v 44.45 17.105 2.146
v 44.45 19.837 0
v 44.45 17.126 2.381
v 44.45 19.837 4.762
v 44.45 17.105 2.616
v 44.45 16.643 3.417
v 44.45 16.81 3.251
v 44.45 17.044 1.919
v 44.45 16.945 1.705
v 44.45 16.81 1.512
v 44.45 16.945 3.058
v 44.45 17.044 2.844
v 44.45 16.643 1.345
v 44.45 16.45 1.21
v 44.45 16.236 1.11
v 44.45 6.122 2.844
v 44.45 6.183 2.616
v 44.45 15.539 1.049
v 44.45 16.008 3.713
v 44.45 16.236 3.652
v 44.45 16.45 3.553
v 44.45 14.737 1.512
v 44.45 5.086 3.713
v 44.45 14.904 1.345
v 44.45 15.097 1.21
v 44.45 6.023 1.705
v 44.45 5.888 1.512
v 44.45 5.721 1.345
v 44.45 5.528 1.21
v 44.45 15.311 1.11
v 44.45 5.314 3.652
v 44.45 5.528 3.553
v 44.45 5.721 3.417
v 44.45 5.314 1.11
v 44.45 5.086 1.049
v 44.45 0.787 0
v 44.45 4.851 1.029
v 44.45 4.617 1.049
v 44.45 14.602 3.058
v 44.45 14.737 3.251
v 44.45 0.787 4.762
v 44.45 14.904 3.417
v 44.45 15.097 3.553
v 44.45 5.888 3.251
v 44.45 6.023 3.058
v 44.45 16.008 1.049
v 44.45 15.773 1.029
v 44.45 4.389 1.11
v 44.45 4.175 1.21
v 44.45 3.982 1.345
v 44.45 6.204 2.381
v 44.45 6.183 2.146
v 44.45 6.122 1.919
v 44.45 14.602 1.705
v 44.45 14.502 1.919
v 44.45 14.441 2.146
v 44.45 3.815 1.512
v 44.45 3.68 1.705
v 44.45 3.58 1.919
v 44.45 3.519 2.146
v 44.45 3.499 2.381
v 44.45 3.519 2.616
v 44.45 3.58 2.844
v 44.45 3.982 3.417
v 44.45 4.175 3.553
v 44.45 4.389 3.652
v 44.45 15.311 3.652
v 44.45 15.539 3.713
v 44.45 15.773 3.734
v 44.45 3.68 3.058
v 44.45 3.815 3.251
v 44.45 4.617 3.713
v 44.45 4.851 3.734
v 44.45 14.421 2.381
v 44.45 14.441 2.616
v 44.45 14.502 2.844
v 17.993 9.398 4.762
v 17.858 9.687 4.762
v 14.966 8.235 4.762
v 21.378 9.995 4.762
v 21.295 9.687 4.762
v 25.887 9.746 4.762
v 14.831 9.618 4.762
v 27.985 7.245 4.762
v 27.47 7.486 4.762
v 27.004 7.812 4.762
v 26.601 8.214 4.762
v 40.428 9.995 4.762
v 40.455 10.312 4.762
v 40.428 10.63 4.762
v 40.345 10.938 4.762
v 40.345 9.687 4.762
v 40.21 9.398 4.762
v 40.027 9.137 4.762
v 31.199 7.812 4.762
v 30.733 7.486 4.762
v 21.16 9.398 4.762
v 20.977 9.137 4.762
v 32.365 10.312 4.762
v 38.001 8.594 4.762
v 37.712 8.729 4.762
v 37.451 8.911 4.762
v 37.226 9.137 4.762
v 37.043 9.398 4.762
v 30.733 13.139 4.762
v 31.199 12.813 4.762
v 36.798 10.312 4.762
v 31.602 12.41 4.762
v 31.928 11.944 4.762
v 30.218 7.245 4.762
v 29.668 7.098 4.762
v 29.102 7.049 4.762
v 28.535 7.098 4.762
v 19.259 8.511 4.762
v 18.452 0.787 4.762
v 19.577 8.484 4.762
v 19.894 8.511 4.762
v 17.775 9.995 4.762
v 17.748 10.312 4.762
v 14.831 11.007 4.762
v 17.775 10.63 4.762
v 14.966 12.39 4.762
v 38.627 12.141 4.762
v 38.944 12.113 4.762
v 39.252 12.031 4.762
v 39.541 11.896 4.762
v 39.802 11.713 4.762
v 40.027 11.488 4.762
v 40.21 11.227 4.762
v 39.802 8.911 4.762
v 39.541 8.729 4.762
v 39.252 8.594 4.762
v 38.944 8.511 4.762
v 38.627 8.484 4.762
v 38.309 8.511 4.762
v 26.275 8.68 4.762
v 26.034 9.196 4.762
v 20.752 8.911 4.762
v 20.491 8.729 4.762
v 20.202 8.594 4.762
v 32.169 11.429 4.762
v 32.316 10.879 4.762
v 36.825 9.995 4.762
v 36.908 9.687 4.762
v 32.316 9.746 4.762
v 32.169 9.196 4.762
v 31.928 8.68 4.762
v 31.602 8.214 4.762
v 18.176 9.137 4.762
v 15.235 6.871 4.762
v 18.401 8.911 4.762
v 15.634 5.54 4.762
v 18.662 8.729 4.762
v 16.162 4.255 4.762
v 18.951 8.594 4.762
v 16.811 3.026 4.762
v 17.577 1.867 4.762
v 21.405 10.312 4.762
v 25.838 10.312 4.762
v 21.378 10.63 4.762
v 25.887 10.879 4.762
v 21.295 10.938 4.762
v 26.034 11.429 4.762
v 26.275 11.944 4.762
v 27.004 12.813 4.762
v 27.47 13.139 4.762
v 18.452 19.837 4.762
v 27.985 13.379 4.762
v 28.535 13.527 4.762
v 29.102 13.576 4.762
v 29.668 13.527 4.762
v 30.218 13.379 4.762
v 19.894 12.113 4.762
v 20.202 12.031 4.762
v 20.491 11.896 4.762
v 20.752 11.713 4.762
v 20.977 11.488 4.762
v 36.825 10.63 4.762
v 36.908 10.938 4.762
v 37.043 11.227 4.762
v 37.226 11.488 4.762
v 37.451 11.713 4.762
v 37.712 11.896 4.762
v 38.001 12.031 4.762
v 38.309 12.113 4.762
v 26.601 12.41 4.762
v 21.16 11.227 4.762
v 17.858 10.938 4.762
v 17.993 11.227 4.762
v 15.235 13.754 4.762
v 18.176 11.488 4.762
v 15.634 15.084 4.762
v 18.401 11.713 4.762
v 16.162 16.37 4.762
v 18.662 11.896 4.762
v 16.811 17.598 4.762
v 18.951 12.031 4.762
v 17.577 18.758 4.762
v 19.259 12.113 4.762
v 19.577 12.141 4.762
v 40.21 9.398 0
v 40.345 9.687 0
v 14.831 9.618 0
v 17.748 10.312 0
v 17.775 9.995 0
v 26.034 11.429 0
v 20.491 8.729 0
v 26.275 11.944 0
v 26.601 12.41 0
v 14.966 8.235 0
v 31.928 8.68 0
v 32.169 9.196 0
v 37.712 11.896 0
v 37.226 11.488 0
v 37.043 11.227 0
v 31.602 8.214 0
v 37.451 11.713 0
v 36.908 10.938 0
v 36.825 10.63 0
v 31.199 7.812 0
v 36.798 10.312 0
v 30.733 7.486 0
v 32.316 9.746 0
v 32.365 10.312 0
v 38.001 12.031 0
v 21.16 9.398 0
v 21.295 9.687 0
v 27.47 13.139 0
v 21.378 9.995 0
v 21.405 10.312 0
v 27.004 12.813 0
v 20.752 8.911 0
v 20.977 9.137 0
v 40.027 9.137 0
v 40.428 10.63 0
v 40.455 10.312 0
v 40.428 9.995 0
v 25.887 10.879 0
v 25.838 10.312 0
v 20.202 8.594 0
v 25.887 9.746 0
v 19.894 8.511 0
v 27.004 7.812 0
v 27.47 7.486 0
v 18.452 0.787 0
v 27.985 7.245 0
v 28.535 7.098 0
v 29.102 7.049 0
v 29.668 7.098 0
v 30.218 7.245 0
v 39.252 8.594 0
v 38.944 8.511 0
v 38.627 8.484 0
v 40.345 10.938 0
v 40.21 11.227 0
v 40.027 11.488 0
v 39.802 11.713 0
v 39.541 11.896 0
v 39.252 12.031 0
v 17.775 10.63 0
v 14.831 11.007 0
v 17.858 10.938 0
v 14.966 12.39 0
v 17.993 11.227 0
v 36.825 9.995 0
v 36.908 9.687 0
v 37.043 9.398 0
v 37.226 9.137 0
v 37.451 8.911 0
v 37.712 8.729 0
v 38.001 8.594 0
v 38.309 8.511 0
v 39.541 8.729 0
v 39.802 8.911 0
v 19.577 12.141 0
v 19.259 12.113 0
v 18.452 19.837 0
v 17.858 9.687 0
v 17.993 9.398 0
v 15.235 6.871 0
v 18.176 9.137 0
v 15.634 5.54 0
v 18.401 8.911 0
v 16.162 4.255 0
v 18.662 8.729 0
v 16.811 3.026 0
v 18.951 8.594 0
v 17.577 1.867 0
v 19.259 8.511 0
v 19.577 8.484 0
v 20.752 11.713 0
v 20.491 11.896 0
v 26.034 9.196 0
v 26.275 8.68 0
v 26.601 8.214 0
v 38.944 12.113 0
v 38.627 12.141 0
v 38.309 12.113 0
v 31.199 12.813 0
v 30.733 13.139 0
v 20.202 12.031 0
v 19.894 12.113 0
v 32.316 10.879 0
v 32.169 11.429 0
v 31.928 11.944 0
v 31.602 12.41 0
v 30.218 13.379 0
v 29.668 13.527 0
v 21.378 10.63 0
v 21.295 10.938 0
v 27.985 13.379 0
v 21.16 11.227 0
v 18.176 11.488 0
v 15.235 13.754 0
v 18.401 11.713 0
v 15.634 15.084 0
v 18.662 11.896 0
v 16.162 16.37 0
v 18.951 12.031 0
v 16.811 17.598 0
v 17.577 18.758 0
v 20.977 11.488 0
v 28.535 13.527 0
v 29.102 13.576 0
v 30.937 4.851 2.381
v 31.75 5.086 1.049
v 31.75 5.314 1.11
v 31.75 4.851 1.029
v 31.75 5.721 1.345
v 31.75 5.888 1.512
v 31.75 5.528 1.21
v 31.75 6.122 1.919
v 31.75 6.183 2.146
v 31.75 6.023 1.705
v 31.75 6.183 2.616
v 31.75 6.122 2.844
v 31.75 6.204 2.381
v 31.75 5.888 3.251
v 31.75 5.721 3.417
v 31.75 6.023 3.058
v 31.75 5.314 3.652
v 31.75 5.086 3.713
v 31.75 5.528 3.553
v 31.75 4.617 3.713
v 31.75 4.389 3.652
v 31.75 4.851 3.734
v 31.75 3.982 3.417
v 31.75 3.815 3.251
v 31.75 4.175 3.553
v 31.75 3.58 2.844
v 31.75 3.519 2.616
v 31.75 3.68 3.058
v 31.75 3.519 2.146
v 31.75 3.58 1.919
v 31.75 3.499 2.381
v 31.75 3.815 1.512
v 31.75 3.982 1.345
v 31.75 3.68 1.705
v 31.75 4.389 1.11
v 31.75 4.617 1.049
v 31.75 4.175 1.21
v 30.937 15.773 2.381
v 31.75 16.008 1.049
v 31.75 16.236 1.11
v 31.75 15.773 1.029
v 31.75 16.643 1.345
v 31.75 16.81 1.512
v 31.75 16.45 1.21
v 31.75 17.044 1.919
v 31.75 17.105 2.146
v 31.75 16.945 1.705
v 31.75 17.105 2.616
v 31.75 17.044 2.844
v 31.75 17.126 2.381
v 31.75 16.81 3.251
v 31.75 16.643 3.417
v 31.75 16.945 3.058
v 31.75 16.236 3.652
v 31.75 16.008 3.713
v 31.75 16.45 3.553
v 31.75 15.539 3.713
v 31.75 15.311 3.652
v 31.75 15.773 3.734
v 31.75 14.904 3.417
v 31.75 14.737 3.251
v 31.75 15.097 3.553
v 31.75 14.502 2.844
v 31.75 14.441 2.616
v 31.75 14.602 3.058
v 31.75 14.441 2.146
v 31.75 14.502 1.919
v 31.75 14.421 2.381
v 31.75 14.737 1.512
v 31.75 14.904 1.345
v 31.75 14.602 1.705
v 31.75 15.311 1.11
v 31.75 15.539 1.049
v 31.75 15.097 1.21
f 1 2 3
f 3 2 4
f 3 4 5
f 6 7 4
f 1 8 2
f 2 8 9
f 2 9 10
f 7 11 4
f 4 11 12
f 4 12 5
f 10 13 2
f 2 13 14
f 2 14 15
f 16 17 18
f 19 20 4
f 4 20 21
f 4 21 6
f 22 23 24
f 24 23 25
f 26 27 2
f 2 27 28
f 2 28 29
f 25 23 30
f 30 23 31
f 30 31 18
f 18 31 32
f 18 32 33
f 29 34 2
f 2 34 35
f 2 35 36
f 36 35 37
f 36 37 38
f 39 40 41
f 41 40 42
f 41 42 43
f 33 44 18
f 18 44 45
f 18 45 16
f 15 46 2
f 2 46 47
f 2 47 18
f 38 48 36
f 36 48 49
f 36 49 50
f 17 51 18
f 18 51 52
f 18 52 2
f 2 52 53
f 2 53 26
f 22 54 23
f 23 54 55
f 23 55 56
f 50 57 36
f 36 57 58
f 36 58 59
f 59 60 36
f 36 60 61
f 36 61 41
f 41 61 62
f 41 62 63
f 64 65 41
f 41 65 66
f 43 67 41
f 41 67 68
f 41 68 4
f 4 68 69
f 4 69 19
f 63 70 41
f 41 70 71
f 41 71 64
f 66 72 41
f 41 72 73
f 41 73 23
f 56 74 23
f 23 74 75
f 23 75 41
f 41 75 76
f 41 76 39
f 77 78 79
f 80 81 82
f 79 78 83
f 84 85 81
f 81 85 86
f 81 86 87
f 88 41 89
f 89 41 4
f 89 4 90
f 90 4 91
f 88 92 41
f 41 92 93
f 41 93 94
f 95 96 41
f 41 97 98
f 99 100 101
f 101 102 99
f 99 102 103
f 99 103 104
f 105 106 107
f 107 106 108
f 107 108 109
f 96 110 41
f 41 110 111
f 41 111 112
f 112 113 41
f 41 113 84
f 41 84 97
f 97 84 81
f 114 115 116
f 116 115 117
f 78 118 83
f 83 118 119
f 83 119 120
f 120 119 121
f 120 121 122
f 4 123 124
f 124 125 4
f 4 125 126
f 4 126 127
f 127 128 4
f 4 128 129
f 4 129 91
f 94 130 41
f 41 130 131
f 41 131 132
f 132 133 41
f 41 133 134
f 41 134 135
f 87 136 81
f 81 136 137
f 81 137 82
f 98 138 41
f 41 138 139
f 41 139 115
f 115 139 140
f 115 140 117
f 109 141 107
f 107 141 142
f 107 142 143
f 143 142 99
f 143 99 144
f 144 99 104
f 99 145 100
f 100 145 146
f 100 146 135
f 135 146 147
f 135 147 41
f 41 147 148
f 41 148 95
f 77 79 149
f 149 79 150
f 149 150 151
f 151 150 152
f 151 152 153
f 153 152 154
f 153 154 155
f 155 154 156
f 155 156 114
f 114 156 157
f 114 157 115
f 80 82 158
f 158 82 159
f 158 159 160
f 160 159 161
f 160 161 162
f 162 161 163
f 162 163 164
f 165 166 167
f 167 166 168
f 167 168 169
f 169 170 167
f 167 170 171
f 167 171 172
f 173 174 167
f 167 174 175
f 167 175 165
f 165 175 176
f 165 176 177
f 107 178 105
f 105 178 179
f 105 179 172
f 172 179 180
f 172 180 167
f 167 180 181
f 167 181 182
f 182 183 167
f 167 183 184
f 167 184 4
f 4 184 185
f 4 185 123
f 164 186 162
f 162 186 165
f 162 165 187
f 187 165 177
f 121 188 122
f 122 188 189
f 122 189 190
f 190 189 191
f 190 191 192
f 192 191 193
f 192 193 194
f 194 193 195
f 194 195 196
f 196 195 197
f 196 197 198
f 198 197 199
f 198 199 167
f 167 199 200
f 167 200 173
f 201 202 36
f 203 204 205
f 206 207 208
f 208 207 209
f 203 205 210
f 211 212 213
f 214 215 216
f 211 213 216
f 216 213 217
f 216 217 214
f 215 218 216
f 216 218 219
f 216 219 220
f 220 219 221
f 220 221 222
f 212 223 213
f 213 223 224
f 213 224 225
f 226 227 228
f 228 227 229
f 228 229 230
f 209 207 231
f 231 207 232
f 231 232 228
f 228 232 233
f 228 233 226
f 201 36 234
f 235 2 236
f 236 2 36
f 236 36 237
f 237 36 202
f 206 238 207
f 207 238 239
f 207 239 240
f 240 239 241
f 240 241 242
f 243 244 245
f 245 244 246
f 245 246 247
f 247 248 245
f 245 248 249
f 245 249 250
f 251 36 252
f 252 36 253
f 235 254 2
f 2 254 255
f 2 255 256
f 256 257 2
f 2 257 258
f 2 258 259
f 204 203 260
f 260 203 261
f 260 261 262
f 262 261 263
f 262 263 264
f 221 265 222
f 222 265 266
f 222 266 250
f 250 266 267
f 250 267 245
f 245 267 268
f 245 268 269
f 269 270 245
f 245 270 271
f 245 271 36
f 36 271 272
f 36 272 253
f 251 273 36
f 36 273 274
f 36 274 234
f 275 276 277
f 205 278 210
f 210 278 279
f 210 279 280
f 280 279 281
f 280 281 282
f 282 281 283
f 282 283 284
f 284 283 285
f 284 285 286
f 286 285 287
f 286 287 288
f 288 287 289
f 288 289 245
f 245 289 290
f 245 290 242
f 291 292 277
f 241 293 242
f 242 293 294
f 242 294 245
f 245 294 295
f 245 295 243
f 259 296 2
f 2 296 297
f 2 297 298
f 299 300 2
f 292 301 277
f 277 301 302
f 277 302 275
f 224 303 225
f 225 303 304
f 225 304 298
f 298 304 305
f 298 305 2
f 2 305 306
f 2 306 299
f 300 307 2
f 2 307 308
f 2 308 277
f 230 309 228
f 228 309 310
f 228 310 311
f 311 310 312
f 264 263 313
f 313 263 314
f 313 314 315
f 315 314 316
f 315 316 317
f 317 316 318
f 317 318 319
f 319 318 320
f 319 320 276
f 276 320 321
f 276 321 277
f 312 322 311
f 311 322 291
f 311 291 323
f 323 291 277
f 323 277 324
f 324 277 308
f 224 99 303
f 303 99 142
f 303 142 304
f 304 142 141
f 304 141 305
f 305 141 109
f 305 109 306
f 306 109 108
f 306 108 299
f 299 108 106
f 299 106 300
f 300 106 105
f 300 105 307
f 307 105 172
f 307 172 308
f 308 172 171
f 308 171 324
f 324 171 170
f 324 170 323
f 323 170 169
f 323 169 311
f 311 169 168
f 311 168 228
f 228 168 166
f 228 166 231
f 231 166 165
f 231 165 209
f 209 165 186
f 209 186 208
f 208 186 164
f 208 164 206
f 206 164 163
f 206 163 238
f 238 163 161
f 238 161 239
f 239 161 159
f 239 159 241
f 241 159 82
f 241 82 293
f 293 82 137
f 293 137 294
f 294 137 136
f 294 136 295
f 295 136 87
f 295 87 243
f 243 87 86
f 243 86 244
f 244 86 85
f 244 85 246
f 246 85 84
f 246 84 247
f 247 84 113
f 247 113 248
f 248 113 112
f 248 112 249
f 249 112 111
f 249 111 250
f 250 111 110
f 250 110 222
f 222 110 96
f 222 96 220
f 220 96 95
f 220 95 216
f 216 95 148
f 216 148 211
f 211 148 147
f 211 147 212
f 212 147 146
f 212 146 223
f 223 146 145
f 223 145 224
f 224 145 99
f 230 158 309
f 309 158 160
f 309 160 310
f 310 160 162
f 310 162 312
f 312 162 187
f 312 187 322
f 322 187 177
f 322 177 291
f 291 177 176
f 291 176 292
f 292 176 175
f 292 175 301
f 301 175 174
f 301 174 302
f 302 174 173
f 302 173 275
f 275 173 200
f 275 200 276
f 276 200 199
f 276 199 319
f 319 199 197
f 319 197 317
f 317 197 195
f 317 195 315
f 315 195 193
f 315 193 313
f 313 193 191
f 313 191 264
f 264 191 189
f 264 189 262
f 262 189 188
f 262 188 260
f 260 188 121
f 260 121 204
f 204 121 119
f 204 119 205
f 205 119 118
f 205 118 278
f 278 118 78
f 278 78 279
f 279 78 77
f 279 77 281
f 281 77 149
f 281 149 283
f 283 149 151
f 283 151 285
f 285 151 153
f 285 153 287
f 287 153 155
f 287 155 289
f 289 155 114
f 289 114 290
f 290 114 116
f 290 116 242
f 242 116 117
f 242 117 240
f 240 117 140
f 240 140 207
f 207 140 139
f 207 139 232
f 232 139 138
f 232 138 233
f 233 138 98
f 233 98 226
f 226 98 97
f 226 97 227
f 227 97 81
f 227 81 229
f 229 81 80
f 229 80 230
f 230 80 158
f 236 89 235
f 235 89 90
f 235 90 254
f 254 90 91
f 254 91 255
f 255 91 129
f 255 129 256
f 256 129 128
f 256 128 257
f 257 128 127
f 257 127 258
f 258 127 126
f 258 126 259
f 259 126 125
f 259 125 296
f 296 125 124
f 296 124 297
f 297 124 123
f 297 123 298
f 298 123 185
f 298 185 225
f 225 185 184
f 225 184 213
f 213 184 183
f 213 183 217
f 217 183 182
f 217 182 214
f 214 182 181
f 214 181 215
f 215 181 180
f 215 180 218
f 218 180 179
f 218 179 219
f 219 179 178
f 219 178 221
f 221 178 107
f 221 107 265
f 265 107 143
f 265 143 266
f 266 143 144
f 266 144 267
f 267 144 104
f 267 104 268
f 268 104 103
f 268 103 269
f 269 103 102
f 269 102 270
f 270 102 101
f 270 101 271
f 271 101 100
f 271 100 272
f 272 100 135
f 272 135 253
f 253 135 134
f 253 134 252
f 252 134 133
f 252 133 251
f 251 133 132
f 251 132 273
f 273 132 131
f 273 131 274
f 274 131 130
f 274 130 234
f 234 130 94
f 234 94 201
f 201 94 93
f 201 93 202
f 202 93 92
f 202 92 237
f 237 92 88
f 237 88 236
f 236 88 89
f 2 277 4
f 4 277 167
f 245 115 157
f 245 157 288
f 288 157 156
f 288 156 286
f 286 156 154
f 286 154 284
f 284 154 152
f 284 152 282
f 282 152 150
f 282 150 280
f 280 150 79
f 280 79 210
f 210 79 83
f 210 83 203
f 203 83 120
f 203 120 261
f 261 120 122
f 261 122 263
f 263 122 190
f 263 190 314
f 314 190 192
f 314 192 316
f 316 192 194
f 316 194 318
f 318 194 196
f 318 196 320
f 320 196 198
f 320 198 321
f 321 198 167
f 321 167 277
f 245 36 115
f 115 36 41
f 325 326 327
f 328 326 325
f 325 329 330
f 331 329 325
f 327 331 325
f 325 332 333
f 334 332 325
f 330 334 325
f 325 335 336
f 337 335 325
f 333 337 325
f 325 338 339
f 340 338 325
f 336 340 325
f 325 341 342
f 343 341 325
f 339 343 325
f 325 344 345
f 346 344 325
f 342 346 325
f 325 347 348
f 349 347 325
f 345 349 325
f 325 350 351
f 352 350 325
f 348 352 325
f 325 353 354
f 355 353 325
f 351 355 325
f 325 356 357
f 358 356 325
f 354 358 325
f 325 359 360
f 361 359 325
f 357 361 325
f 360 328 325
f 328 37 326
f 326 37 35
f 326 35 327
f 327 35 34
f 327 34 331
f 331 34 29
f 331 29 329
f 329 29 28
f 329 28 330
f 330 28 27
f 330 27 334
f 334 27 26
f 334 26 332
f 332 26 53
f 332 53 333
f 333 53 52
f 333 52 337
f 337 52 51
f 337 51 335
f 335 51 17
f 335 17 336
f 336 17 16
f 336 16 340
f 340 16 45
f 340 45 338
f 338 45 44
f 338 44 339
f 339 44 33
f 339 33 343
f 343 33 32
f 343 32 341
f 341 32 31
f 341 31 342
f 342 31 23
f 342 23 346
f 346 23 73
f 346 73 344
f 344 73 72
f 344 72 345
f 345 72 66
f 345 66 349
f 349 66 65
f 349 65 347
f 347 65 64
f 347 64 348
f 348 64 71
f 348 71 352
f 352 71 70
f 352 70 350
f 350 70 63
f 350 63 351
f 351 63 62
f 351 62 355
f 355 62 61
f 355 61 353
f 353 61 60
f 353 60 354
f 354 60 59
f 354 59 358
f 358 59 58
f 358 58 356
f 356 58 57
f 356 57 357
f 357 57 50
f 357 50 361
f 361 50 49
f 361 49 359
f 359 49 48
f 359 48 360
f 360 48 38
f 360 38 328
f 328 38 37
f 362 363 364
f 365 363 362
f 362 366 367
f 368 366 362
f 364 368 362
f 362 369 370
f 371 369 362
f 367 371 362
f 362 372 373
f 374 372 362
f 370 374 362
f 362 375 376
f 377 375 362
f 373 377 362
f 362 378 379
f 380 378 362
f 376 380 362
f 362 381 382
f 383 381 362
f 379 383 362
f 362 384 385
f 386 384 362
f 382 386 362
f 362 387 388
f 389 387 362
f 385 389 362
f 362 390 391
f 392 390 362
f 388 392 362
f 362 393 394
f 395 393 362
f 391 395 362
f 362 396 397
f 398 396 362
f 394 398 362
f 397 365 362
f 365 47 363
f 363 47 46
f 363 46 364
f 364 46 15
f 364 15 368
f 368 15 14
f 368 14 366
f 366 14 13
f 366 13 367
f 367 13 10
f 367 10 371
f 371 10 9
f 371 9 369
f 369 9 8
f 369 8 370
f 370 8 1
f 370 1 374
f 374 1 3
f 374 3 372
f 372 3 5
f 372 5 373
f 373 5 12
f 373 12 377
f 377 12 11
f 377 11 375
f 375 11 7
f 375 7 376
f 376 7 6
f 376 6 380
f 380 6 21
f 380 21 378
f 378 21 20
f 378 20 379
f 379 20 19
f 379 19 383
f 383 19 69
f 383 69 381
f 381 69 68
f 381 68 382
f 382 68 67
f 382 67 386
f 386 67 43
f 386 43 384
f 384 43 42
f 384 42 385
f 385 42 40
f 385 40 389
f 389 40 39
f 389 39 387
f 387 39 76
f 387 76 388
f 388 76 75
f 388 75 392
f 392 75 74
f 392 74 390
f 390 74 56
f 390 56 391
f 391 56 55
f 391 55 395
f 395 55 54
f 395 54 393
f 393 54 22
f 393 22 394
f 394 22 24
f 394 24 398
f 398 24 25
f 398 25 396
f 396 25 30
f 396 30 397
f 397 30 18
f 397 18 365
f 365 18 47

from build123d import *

# Parameters (mm, degrees)
SKETCH1_W                     = 44.45
SKETCH1_H                     = 23.0124
BOSS_EXTRUDE1_DEPTH           = 4.7625
F_1_4_CLEARANCE_HOLE1_D       = 6.5278
F_6_CLEARANCE_HOLE1_D         = 3.6576
CUT_EXTRUDE1_DEPTH            = 51.279761933
TAP_DRILL_FOR_6_32_TAP1_D     = 2.7051
TAP_DRILL_FOR_6_32_TAP1_DEPTH = 12.7
TAP_DRILL_FOR_6_32_TAP1_TIP   = 0.81269403


with BuildPart() as part:
    # Sketch1 → Boss-Extrude1 (new body)
    with BuildSketch(Plane.XY):
        with Locations((22.225, 11.5062)):
            Rectangle(SKETCH1_W, SKETCH1_H)
    extrude(amount=BOSS_EXTRUDE1_DEPTH)

    # 1/4 Clearance Hole1 (through all)
    with Locations(Plane.XY.offset(4.7625)):
        with Locations((29.1015, 10.3124)):
            Hole(F_1_4_CLEARANCE_HOLE1_D / 2)

    # #6 Clearance Hole1 (through all)
    with Locations(Plane.XY.offset(4.7625)):
        with Locations((19.5765, 10.3124), (38.6265, 10.3124)):
            Hole(F_6_CLEARANCE_HOLE1_D / 2)

    # Sketch7 → Cut-Extrude1 (cut, through all)
    with BuildSketch(Plane.XY.offset(4.7625)):
        with BuildLine():
            Line((18.452226257, 0.7874), (44.45, 0.7874))
            Line((44.45, 0.7874), (44.45, 0))
            Line((44.45, 0), (0, 0))
            Line((0, 0), (0, 23.0124))
            Line((0, 23.0124), (44.45, 23.0124))
            Line((44.45, 23.0124), (44.45, 19.8374))
            Line((44.45, 19.8374), (18.452226257, 19.8374))
            ThreePointArc((18.452226257, 19.8374), (14.814, 10.3124), (18.452226257, 0.7874))
        make_face()
    extrude(amount=-CUT_EXTRUDE1_DEPTH, mode=Mode.SUBTRACT)

    # Tap Drill for #6-32 Tap1
    with Locations(Plane(origin=(44.45, 0, 0), x_dir=(0, 0, -1), z_dir=(1, 0, 0))):
        with Locations((-2.38125, 4.8514), (-2.38125, 15.7734)):
            Hole(TAP_DRILL_FOR_6_32_TAP1_D / 2, depth=TAP_DRILL_FOR_6_32_TAP1_DEPTH)
            with Locations((0, 0, -(TAP_DRILL_FOR_6_32_TAP1_DEPTH + TAP_DRILL_FOR_6_32_TAP1_TIP / 2))):  # 118° drill point
                Cone(0, TAP_DRILL_FOR_6_32_TAP1_D / 2, TAP_DRILL_FOR_6_32_TAP1_TIP, mode=Mode.SUBTRACT)


solid = part.part
